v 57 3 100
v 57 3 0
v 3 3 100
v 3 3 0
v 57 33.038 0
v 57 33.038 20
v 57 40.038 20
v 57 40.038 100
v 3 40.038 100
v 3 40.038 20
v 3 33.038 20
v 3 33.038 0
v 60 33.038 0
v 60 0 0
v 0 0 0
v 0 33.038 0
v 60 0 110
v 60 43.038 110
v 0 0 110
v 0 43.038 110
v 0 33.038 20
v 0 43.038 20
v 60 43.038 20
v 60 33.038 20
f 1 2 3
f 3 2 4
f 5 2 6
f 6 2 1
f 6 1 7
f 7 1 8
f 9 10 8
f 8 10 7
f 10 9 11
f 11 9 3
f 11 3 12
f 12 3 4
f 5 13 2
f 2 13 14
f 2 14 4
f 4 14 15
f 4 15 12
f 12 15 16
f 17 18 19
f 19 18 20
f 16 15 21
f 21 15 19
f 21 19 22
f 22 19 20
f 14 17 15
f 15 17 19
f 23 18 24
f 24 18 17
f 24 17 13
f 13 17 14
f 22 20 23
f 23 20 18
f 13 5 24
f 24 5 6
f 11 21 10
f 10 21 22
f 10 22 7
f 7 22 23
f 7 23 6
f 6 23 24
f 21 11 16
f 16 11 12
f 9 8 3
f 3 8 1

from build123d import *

# Parameters (mm, degrees)
IZIM1_W                     = 60
IZIM1_H                     = 43.037715622
IZIM1_W_2                   = 54
IZIM1_H_2                   = 37.037715622
Y_KSEKLIK_EKSTR_ZYON1_DEPTH = 110
IZIM2_W                     = 60
IZIM2_H                     = 20
KES_EKSTR_ZYON1_DEPTH       = 10
IZIM3_W                     = 60
IZIM3_H                     = 43.037715622
Y_KSEKLIK_EKSTR_ZYON2_DEPTH = 10


with BuildPart() as part:
    # Çizim1 → Yükseklik-Ekstrüzyon1 (new body)
    with BuildSketch(Plane.XY):
        with Locations((30, 21.518857811)):
            Rectangle(IZIM1_W, IZIM1_H)
        with Locations((30, 21.518857811)):
            Rectangle(IZIM1_W_2, IZIM1_H_2, mode=Mode.SUBTRACT)
    extrude(amount=Y_KSEKLIK_EKSTR_ZYON1_DEPTH)

    # Çizim2 → Kes-Ekstrüzyon1 (cut)
    with BuildSketch(Plane(origin=(0, 43.037715622, 0), x_dir=(1, 0, 0), z_dir=(0, 1, 0))):
        with Locations((30, -10)):
            Rectangle(IZIM2_W, IZIM2_H)
    extrude(amount=-KES_EKSTR_ZYON1_DEPTH, mode=Mode.SUBTRACT)

    # Çizim3 → Yükseklik-Ekstrüzyon2 (add)
    with BuildSketch(Plane.XY.offset(110)):
        with Locations((30, 21.518857811)):
            Rectangle(IZIM3_W, IZIM3_H)
    extrude(amount=-Y_KSEKLIK_EKSTR_ZYON2_DEPTH)


solid = part.part
